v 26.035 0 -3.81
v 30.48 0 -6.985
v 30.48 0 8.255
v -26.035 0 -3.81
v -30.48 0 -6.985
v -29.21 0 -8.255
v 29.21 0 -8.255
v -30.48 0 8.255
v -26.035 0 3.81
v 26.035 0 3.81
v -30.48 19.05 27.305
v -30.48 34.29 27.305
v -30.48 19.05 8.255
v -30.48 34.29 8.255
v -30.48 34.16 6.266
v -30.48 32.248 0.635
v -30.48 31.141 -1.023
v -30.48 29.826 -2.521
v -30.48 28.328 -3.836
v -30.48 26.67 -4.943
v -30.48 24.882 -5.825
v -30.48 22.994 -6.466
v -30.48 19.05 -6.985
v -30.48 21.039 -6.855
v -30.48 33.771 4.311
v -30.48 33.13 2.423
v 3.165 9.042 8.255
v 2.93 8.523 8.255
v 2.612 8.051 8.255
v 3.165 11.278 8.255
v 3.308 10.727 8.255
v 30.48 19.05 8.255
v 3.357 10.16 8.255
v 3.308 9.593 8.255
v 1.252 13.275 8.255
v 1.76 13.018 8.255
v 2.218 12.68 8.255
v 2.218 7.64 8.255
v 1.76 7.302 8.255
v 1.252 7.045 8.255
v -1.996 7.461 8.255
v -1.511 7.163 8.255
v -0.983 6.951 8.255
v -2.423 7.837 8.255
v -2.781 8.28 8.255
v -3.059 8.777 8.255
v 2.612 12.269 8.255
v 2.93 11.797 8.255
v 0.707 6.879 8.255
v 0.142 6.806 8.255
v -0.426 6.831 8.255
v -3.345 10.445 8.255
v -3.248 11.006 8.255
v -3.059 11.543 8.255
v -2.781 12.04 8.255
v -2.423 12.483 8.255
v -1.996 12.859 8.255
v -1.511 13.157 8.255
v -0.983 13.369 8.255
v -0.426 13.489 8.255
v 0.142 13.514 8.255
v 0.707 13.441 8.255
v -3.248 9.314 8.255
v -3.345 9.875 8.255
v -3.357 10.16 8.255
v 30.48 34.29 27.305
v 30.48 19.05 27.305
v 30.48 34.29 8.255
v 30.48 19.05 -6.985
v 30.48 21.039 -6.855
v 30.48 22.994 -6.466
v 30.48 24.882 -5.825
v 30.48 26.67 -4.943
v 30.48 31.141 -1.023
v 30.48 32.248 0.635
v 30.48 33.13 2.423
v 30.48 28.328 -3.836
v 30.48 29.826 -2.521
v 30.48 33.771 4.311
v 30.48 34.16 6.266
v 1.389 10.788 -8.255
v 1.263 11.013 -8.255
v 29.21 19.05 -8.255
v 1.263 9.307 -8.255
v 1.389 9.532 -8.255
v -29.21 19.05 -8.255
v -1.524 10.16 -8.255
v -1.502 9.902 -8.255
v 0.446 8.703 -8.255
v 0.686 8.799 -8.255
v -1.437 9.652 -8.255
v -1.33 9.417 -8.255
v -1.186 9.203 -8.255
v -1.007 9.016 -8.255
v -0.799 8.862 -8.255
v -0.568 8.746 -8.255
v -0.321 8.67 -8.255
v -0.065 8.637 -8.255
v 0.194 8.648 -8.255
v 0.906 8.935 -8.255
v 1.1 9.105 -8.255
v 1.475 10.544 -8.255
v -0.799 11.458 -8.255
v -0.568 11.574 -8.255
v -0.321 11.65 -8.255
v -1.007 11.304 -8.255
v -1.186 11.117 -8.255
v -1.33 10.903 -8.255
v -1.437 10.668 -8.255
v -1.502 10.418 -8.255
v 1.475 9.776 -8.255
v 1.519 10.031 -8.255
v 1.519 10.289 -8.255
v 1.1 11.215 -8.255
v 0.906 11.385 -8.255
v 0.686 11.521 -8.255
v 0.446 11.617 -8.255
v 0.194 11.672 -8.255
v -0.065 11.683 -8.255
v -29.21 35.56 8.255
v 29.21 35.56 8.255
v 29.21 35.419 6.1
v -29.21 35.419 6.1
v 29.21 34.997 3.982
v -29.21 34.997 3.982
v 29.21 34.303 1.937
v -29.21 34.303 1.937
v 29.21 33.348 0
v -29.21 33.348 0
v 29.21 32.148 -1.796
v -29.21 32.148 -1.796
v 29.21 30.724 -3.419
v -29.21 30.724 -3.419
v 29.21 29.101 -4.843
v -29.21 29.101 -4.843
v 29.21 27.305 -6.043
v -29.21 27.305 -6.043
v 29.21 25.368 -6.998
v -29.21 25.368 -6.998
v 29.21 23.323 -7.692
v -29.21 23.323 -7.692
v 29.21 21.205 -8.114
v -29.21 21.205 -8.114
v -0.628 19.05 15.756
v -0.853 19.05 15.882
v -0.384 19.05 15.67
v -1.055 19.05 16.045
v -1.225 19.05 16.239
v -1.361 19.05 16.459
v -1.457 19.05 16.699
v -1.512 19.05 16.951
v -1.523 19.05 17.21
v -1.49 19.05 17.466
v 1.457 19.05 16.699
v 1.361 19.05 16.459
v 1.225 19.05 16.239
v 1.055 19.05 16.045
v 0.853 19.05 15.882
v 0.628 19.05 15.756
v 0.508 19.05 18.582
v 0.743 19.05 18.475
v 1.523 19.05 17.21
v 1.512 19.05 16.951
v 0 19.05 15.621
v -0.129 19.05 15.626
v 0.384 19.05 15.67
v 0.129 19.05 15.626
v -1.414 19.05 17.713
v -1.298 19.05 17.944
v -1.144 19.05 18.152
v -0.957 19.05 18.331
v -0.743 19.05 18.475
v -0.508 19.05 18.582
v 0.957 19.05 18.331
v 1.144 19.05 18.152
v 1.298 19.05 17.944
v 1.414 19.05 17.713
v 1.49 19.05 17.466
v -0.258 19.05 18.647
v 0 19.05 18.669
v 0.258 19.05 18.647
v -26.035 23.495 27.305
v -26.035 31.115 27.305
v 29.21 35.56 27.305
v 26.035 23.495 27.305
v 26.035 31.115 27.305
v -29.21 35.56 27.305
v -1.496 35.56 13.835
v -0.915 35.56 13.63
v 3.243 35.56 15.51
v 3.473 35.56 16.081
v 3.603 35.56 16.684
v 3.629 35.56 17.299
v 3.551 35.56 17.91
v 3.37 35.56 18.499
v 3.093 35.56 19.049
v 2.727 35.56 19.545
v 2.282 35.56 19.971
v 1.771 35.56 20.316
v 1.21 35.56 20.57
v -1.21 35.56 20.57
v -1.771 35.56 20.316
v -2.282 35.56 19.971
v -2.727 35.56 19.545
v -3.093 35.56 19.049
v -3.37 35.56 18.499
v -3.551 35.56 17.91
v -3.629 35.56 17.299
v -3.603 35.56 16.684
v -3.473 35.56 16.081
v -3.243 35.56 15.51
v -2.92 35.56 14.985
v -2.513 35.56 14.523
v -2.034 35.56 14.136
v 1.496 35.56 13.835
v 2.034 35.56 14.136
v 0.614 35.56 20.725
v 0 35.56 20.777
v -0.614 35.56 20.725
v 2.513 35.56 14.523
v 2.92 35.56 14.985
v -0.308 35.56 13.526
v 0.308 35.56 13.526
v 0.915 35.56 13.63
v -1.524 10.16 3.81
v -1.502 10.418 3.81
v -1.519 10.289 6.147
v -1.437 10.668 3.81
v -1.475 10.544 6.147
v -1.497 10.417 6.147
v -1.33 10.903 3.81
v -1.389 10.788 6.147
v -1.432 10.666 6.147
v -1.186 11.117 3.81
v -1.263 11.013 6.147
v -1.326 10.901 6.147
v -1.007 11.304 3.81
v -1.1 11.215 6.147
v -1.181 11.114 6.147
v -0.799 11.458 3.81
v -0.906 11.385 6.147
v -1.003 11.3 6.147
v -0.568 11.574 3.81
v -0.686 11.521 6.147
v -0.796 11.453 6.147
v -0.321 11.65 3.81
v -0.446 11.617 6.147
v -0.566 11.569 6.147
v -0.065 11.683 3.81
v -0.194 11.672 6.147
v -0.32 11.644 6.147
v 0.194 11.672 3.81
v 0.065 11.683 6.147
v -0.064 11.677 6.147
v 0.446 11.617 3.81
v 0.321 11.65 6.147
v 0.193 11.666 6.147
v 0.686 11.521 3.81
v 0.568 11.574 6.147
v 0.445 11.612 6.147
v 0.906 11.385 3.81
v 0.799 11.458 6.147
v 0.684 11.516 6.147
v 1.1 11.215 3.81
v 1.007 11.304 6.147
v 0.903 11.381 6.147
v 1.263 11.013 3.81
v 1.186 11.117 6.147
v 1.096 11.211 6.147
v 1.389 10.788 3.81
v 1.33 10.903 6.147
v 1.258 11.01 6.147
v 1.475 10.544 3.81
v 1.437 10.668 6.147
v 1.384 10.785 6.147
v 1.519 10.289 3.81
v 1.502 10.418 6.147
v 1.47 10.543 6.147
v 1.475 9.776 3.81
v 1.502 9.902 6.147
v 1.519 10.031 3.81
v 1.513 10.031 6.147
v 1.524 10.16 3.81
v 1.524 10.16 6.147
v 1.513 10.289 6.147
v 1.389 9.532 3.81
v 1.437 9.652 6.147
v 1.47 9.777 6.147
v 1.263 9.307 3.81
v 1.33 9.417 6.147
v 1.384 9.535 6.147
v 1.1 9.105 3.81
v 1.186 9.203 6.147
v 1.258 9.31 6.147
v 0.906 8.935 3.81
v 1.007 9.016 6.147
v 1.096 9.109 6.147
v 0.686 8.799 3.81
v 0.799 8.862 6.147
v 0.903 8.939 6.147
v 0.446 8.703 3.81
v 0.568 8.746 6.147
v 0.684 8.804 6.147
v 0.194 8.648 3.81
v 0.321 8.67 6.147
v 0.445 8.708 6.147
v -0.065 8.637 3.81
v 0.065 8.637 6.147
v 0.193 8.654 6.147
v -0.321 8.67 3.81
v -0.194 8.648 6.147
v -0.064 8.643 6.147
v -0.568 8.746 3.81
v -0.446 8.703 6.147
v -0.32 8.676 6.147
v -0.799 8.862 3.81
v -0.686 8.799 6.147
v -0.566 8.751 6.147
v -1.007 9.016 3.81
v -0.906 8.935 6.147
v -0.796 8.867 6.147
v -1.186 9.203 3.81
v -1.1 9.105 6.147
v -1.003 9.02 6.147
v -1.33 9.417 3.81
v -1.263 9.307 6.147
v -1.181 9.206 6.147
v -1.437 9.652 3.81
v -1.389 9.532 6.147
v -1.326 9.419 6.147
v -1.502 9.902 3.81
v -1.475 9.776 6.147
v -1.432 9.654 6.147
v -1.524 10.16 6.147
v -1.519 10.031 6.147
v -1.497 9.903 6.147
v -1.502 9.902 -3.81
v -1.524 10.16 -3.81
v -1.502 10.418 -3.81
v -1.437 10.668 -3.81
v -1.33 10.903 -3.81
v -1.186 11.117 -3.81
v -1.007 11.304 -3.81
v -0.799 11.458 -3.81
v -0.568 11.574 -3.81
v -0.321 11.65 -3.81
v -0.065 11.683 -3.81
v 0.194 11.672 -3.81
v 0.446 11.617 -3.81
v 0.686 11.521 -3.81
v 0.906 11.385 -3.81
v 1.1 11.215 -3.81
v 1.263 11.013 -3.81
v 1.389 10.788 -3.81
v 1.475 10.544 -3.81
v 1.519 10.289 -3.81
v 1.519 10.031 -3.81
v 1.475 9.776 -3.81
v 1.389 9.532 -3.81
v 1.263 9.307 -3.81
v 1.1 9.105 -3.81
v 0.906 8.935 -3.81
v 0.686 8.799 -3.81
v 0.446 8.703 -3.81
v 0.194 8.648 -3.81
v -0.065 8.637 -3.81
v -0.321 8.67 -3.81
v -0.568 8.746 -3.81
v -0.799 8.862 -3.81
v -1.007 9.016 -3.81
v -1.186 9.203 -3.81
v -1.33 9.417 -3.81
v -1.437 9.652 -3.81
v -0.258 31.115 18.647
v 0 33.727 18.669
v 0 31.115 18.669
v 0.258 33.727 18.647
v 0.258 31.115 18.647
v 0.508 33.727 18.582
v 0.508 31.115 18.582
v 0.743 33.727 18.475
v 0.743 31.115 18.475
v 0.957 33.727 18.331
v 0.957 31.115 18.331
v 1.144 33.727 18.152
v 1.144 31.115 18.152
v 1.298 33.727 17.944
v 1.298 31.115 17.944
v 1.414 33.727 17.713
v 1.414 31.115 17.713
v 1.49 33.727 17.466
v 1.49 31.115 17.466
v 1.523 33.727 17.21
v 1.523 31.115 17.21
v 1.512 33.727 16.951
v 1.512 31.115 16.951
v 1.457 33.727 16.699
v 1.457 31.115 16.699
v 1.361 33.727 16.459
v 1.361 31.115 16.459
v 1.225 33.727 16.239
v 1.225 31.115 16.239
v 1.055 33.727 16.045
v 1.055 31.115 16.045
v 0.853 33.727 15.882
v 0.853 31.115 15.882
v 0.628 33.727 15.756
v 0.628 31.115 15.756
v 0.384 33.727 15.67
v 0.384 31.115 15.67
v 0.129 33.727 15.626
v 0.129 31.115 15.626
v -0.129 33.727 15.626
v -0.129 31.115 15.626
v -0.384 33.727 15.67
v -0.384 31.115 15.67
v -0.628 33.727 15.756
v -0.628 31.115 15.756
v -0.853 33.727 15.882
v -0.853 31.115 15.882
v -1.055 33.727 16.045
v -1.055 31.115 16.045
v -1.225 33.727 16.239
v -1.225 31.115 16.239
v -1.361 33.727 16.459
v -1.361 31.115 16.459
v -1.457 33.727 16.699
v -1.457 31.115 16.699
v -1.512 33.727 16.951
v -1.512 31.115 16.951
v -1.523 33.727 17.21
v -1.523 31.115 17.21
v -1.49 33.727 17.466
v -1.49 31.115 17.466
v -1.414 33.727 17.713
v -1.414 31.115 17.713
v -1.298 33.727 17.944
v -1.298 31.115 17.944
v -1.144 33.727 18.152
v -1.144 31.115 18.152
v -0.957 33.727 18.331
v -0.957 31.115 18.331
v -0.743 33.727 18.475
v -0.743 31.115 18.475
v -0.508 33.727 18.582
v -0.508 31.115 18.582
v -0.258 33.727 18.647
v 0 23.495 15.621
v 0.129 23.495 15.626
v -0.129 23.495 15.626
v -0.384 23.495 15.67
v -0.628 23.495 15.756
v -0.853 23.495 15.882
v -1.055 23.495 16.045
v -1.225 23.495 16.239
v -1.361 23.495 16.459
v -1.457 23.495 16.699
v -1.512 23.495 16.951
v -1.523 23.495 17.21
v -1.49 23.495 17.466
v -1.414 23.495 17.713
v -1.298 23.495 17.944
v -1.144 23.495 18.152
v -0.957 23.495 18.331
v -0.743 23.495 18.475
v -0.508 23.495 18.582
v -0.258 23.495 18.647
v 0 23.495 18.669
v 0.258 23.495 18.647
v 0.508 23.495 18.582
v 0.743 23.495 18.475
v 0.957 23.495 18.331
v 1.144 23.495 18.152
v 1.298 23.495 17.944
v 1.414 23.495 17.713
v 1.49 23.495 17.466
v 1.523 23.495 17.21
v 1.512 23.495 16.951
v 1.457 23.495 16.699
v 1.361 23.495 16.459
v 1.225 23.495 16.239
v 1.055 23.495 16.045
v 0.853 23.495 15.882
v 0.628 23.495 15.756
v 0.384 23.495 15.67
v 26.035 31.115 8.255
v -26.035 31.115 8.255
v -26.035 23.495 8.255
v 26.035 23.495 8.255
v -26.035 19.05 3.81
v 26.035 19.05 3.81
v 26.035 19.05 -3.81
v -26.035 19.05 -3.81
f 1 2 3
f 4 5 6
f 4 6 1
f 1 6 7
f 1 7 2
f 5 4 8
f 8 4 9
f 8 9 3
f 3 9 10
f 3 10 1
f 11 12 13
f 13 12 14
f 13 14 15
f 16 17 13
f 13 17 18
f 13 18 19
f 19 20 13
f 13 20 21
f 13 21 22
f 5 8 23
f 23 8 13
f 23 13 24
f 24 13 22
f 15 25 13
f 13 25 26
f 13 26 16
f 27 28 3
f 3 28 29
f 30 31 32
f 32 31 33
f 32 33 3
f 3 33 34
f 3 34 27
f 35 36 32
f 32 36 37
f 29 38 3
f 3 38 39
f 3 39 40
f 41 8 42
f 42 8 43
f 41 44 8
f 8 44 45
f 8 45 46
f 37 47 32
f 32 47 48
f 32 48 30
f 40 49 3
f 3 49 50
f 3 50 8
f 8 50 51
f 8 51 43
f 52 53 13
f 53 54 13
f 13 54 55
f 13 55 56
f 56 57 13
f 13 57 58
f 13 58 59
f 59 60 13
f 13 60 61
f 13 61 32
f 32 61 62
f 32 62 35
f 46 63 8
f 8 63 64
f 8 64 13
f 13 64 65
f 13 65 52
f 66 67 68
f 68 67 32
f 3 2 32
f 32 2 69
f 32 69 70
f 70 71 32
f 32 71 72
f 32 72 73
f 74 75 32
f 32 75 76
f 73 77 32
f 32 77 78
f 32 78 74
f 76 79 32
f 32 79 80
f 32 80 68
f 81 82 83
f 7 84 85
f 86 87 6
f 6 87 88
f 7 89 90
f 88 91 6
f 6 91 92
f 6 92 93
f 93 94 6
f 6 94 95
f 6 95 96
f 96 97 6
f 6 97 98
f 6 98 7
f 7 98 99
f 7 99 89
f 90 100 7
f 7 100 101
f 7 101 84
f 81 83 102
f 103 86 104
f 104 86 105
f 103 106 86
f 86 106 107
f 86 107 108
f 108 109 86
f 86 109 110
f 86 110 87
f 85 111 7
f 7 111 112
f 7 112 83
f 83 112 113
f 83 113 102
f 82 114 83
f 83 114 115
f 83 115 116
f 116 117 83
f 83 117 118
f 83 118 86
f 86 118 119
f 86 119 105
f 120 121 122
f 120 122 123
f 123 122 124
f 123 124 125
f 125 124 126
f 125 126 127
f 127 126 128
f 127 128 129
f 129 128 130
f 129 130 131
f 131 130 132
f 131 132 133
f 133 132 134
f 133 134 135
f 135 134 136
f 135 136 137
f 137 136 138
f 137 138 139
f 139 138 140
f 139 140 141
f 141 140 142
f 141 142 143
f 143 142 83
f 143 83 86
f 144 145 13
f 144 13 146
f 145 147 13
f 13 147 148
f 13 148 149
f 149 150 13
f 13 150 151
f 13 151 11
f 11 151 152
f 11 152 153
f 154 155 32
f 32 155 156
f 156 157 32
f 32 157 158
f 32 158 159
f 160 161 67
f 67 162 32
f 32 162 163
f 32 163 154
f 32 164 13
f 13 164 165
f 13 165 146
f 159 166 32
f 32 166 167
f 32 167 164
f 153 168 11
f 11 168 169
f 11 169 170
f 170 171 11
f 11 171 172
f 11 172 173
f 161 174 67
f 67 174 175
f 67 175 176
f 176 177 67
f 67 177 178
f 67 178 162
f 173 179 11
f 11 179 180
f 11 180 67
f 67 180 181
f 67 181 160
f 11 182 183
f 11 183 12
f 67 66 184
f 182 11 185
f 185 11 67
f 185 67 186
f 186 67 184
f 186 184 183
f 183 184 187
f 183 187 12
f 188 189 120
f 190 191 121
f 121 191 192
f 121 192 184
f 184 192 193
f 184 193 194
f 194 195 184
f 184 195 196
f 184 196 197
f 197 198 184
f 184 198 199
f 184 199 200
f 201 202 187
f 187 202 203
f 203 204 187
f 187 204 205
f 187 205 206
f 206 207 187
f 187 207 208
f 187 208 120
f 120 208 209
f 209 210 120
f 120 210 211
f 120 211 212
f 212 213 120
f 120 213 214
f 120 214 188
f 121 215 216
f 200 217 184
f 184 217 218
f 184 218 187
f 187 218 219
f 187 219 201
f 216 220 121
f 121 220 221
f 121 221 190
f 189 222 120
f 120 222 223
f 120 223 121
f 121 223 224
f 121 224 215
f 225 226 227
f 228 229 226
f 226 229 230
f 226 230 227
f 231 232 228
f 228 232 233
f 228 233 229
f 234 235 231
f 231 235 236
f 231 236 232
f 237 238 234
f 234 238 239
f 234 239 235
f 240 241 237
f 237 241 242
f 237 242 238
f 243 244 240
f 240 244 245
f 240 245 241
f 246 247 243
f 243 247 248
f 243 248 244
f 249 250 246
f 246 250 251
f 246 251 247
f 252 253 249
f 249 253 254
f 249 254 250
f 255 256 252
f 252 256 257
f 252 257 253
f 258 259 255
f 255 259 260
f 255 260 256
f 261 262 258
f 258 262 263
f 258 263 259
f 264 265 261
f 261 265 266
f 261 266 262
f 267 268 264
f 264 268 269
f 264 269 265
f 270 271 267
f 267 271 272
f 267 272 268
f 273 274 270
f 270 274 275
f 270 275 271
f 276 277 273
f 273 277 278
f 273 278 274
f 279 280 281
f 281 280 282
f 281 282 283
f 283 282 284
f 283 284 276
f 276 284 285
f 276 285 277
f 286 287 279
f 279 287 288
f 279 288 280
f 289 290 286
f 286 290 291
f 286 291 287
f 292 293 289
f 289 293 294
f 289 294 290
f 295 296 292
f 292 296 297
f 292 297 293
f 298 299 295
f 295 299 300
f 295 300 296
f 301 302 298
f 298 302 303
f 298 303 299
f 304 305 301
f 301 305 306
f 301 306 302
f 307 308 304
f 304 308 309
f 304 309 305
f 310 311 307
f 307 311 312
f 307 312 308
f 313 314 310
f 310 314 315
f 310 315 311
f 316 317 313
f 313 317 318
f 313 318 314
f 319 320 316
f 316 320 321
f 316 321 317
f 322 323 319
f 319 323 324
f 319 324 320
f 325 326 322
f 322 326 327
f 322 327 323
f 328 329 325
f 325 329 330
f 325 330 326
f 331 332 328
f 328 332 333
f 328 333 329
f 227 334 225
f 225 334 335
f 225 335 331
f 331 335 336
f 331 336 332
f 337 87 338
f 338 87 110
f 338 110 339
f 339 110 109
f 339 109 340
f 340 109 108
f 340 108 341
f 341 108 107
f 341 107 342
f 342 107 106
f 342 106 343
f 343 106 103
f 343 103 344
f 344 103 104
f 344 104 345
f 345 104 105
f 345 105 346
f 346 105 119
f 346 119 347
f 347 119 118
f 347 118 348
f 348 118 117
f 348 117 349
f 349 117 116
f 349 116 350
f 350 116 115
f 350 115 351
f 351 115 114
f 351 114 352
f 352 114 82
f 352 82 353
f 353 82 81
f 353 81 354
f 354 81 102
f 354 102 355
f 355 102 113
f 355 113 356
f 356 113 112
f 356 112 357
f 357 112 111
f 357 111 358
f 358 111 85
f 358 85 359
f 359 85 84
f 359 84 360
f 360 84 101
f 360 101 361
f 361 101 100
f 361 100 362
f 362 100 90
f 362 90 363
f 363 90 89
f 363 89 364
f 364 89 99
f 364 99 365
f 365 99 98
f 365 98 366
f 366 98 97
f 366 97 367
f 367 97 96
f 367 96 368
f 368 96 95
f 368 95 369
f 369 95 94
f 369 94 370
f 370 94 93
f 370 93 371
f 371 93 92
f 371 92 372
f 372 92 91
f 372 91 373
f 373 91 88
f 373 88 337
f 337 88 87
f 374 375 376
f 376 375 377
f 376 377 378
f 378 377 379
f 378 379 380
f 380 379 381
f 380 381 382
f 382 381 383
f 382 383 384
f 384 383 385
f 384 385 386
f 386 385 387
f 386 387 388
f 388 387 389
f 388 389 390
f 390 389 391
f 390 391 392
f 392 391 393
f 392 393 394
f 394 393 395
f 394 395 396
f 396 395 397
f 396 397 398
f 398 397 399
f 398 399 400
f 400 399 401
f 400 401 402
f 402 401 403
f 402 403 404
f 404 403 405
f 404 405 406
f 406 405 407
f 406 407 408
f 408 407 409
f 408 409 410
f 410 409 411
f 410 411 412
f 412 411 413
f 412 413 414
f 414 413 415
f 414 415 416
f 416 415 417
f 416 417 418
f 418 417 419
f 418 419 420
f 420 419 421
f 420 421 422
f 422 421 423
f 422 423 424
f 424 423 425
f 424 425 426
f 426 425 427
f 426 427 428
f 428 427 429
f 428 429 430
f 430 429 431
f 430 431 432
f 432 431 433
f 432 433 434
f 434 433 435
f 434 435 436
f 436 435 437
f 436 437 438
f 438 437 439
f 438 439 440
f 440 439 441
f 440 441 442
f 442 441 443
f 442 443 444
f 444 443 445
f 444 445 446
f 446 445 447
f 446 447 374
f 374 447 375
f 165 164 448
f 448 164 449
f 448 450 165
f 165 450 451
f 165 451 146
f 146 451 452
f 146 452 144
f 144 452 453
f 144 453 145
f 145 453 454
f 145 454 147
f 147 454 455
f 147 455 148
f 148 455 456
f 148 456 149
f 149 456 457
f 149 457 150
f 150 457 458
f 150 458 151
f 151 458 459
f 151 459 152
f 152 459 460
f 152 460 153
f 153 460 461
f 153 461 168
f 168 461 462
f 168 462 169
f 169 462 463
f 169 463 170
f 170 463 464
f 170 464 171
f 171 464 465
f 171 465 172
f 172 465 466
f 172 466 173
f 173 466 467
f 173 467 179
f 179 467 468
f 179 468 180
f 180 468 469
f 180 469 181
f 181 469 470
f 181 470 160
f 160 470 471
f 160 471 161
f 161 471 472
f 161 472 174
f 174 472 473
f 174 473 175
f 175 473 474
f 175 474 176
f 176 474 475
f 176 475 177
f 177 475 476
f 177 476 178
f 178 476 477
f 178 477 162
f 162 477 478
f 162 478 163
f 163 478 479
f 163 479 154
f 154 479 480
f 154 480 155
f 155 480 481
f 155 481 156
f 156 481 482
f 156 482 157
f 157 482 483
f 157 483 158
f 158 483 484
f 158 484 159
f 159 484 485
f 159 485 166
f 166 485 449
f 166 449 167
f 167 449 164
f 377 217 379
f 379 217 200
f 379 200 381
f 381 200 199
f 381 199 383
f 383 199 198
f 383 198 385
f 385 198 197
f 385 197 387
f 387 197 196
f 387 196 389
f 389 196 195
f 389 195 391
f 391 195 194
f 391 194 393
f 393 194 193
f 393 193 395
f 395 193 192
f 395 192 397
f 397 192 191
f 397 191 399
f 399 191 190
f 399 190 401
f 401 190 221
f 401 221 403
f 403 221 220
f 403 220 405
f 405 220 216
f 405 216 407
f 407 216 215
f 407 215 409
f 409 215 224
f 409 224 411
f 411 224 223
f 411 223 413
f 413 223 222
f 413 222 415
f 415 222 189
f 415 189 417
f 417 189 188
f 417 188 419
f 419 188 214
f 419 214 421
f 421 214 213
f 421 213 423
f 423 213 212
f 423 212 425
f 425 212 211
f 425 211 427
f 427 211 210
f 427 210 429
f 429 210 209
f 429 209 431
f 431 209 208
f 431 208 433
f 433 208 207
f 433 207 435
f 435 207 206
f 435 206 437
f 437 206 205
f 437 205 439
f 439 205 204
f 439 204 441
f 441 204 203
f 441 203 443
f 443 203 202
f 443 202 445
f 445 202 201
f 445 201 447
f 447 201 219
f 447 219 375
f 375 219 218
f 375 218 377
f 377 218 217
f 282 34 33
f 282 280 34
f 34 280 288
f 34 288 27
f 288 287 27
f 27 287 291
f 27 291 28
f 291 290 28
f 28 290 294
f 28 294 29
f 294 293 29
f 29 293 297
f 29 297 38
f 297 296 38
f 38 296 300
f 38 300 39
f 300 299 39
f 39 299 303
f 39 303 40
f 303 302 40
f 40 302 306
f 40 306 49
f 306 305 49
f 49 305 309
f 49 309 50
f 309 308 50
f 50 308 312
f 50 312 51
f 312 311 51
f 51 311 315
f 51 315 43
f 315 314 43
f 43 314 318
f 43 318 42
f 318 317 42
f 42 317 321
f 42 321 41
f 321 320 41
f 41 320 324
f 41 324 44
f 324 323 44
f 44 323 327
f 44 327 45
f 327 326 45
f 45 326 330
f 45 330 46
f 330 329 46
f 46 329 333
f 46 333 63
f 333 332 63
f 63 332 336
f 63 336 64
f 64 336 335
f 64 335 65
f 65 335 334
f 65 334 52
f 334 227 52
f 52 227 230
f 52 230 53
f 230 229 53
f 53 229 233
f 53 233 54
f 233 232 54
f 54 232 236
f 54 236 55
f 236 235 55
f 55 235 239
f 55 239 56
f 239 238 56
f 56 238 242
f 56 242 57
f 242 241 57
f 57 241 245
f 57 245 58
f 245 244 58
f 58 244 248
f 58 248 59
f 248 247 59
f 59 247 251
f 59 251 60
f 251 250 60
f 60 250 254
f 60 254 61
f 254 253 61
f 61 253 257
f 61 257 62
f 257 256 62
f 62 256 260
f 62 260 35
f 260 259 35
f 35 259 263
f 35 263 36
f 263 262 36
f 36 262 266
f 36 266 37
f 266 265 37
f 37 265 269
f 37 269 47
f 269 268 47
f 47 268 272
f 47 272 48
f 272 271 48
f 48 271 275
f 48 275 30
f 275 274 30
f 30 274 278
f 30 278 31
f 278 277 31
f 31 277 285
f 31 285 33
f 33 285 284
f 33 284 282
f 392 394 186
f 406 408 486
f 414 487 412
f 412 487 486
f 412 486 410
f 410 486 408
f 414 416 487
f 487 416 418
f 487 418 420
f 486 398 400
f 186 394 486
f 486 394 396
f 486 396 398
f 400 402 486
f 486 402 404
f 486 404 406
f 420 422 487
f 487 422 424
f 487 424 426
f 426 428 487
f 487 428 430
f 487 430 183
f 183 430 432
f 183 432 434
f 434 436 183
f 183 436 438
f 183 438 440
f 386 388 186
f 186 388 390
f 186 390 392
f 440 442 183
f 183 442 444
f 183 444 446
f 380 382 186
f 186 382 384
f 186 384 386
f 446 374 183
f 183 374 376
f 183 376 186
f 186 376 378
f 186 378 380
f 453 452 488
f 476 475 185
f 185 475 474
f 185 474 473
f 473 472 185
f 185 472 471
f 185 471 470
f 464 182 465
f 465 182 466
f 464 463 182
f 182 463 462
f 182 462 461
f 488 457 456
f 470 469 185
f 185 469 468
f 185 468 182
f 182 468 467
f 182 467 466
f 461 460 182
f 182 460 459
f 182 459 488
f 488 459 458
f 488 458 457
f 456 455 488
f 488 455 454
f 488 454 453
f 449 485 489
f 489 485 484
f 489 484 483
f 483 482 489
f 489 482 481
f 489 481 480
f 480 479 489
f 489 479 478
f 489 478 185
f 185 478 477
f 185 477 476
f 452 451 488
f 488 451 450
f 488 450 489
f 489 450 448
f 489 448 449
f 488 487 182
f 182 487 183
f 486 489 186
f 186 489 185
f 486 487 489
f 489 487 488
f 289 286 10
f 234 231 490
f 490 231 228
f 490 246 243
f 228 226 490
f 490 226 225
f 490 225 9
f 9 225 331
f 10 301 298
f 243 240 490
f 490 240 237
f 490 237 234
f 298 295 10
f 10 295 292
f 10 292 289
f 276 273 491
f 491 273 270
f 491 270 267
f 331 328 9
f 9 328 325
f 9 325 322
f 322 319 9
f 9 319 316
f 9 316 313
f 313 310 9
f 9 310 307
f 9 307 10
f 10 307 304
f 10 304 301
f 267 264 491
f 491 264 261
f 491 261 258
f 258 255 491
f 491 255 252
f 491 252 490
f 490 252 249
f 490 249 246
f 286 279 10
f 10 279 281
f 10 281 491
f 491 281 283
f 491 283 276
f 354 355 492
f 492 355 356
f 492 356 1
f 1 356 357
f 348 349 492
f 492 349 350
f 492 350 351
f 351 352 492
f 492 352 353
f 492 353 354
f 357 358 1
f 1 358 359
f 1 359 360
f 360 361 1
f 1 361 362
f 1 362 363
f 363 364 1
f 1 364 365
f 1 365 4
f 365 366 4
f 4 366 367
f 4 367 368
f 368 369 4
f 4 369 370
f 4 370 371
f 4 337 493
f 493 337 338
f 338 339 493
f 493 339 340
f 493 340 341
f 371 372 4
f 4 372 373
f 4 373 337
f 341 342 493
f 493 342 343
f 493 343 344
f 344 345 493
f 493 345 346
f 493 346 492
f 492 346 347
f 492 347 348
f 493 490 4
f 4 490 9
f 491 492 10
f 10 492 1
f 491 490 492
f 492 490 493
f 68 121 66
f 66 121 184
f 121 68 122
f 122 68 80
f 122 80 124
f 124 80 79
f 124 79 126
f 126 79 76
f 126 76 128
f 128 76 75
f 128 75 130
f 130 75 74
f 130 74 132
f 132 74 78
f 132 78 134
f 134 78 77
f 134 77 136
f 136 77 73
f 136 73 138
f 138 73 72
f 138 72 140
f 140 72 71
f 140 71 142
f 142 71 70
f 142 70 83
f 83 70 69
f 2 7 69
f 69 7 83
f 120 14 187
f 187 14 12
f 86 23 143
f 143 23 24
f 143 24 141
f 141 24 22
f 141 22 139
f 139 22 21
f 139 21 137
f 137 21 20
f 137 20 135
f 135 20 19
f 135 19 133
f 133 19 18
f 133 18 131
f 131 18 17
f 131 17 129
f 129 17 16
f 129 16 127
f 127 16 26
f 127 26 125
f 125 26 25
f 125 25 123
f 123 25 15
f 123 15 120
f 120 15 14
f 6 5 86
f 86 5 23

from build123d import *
from OCP.BRepFilletAPI import BRepFilletAPI_MakeChamfer

# Parameters (mm, degrees)
SKETCH1_W           = 60.96
SKETCH1_H           = 16.51
SKETCH1_W_2         = 50.8
SKETCH1_H_2         = 6.35
BOSS_EXTRUDE1_DEPTH = 19.05
BOSS_EXTRUDE2_DEPTH = 60.96
SKETCH6_W           = 50.8
SKETCH6_H           = 6.35
CUT_EXTRUDE1_DEPTH  = 19.05
SKETCH7_R           = 1.524
CUT_EXTRUDE2_DEPTH  = 59.805251466
SKETCH8_R           = 1.524
CUT_EXTRUDE3_DEPTH  = 55.213531752
CHAMFER1_SIZE       = 2.1082
CHAMFER1_SIZE2      = 1.832630301
SKETCH9_W           = 52.07
SKETCH9_H           = 7.62
CUT_EXTRUDE4_DEPTH  = 19.05
SKETCH10_W          = 52.07
SKETCH10_H          = 7.62
CUT_EXTRUDE5_DEPTH  = 19.05
CHAMFER2_SIZE       = 1.27


with BuildPart() as part:
    # Sketch1 → Boss-Extrude1 (new body)
    with BuildSketch(Plane(origin=(0, 0, 0), x_dir=(1, 0, 0), z_dir=(0, 1, 0))):
        Rectangle(SKETCH1_W, SKETCH1_H)
        Rectangle(SKETCH1_W_2, SKETCH1_H_2, mode=Mode.SUBTRACT)
    extrude(amount=BOSS_EXTRUDE1_DEPTH)

    # Sketch5 → Boss-Extrude2 (add)
    with BuildSketch(Plane(origin=(30.48, 0, 0), x_dir=(0, 0, -1), z_dir=(1, 0, 0))):
        with BuildLine():
            Line((-8.255, 35.56), (-27.305, 35.56))
            Line((-27.305, 35.56), (-27.305, 19.05))
            Line((-27.305, 19.05), (-8.255, 19.05))
            Line((-8.255, 19.05), (8.255, 19.05))
            ThreePointArc((8.255, 19.05), (3.419332957, 30.724332957), (-8.255, 35.56))
        make_face()
    extrude(amount=-BOSS_EXTRUDE2_DEPTH)

    # Sketch6 → Cut-Extrude1 (cut)
    with BuildSketch(Plane.XY.offset(27.305)):
        with Locations((0, 27.305)):
            Rectangle(SKETCH6_W, SKETCH6_H)
    extrude(amount=-CUT_EXTRUDE1_DEPTH, mode=Mode.SUBTRACT)

    # Sketch7 → Cut-Extrude2 (cut, through all)
    with BuildSketch(Plane(origin=(0, 0, -8.255), x_dir=(-1, 0, 0), z_dir=(0, 0, -1))):
        with Locations((0, 10.16)):
            Circle(SKETCH7_R)
    extrude(amount=-CUT_EXTRUDE2_DEPTH, mode=Mode.SUBTRACT)

    # Sketch8 → Cut-Extrude3 (cut, through all)
    with BuildSketch(Plane(origin=(0, 35.56, 0), x_dir=(1, 0, 0), z_dir=(0, 1, 0))):
        with Locations(Location((0, -17.145, 0), (0, 0, 270))):
            Circle(SKETCH8_R)
    extrude(amount=-CUT_EXTRUDE3_DEPTH, mode=Mode.SUBTRACT)

    # Chamfer1: one chamfer whose edges measure the first distance from different faces: ONE call of the kernel's chamfer builder (chamfer() names one face for all edges)
    chamfer1_edges_1 = [part.edges().sort_by_distance(p)[0] for p in [
        (1.524, 10.16, 8.255),
    ]]
    chamfer1_side_1 = [part.faces().sort_by_distance(p)[0] for p in [
        (1.524, 10.16, 5.715),
    ]]
    chamfer1_edges_2 = [part.edges().sort_by_distance(p)[0] for p in [
        (0, 35.56, 15.621),
    ]]
    chamfer1_side_2 = [part.faces().sort_by_distance(p)[0] for p in [
        (0, 35.56, 8.893672381),
    ]]
    chamfer1 = BRepFilletAPI_MakeChamfer(part.part.solid().wrapped)
    for e in chamfer1_edges_1:
        chamfer1.Add(CHAMFER1_SIZE, CHAMFER1_SIZE2, e.wrapped, chamfer1_side_1[0].wrapped)  # the first distance lies on this face
    for e in chamfer1_edges_2:
        chamfer1.Add(CHAMFER1_SIZE, CHAMFER1_SIZE2, e.wrapped, chamfer1_side_2[0].wrapped)  # the first distance lies on this face
    add(Compound.cast(chamfer1.Shape()), mode=Mode.REPLACE)

    # Sketch9 → Cut-Extrude4 (cut)
    with BuildSketch(Plane.XY.offset(27.305)):
        with Locations((0, 27.305)):
            Rectangle(SKETCH9_W, SKETCH9_H)
    extrude(amount=-CUT_EXTRUDE4_DEPTH, mode=Mode.SUBTRACT)

    # Sketch10 → Cut-Extrude5 (cut)
    with BuildSketch(Plane.XZ):
        Rectangle(SKETCH10_W, SKETCH10_H)
    extrude(amount=-CUT_EXTRUDE5_DEPTH, mode=Mode.SUBTRACT)

    # Chamfer2
    chamfer2_edges = [part.edges().sort_by_distance(p)[0] for p in [
        (30.48, 30.724332957, -3.419332957),
        (30.48, 35.56, 17.78),
        (-30.48, 30.724332957, -3.419332957),
        (-30.48, 35.56, 17.78),
        (-30.48, 9.525, -8.255),
        (30.48, 9.525, -8.255),
    ]]
    chamfer(chamfer2_edges, length=CHAMFER2_SIZE)


solid = part.part
